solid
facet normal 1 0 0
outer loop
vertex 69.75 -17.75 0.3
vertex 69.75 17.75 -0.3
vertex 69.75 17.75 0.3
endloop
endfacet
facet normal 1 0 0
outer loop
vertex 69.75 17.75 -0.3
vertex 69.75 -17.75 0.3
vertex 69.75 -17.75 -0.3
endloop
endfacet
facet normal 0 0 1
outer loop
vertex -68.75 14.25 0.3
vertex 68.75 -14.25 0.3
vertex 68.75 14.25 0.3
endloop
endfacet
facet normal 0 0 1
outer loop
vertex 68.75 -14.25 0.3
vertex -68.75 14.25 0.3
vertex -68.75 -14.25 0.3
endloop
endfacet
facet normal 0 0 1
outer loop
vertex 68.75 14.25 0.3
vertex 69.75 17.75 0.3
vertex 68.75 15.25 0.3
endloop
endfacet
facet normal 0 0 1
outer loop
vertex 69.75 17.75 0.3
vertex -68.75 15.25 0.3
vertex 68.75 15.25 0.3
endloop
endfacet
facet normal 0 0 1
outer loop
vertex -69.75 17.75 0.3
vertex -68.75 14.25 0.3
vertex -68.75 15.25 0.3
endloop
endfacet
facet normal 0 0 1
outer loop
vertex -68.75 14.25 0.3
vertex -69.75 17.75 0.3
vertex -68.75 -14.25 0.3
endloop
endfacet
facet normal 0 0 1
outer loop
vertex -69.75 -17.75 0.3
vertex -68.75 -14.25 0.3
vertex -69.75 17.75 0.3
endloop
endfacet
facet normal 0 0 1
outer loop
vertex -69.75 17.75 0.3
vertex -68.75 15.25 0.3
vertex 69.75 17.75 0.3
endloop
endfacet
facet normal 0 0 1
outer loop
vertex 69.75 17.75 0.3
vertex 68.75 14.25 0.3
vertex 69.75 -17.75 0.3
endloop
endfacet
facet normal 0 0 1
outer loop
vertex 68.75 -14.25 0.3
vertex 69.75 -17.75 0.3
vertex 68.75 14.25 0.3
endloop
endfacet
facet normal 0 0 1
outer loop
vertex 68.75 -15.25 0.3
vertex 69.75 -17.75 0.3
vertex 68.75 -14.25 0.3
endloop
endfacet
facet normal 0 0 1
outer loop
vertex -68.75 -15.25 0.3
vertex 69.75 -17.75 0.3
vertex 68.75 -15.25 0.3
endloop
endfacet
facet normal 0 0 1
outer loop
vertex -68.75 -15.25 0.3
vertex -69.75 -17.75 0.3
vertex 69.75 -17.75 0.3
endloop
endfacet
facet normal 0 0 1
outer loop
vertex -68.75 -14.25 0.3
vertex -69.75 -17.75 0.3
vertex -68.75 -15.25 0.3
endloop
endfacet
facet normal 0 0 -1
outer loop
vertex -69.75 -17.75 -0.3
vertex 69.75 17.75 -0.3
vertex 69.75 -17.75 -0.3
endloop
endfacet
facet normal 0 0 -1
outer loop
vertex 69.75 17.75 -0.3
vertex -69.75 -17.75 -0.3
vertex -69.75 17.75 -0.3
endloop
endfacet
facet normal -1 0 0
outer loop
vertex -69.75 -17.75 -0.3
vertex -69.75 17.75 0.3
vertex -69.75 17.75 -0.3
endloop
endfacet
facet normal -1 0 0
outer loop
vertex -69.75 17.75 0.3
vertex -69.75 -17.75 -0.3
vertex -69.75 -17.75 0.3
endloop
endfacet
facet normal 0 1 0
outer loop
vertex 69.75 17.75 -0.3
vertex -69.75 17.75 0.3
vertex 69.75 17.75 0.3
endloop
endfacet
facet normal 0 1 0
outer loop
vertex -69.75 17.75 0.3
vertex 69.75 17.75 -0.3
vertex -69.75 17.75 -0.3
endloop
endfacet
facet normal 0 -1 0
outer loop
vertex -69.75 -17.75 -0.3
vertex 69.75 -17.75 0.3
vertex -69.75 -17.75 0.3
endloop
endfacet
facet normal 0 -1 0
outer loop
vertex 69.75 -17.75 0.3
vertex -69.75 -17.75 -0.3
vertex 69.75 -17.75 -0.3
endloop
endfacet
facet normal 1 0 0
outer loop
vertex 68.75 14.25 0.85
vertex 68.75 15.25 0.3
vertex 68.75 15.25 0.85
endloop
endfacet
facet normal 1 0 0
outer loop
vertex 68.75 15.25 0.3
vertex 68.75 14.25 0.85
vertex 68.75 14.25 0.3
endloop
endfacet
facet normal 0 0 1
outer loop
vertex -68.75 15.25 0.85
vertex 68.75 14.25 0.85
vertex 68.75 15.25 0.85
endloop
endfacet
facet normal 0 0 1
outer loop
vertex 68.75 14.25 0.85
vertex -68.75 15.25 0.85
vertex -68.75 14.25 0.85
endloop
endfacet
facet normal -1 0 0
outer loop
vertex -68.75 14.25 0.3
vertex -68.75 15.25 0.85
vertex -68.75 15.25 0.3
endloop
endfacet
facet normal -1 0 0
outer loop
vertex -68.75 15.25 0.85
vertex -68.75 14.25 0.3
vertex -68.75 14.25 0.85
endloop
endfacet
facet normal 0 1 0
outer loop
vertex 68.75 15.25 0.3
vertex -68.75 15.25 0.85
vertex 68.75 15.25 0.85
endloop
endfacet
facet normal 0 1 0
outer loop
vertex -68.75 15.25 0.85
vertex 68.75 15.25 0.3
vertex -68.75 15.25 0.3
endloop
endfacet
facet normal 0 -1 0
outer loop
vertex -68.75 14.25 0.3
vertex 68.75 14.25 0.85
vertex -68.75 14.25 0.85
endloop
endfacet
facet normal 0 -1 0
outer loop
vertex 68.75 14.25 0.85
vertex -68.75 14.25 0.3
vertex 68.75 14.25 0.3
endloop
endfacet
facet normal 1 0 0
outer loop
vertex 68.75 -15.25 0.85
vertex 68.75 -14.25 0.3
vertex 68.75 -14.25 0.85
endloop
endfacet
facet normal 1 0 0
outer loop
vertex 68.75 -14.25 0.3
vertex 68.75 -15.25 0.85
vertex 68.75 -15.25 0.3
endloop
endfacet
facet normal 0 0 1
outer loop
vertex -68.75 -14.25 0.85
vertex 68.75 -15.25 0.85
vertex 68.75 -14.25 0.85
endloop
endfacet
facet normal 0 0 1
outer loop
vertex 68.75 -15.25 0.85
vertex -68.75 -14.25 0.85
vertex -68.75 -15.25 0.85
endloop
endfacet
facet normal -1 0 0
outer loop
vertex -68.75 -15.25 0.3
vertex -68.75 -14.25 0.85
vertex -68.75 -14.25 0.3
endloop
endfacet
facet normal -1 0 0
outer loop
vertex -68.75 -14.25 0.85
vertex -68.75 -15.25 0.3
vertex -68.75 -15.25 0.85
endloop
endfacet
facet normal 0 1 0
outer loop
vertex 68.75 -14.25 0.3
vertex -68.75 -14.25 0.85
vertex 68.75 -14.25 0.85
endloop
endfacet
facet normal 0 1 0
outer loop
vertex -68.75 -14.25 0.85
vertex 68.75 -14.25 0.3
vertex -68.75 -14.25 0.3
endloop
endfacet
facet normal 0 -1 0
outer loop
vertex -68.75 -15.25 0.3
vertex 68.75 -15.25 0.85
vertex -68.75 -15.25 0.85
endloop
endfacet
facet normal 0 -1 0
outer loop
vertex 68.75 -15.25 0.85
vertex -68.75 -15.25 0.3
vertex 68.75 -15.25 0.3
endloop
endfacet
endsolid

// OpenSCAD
// file: fb_globals.scad
/// @file fb_globals.scad
///
/// @brief project footbridge globals
///
/// @author © Dave Harris 2022
///
/// Included in all project files.


$fa = 1;   // Fragment angle
$fs = 0.4; // Fragment size resolution

// global constants
//------------------

H_canopy = 47;

H_bridge = 49.5; // platform<>bridge
W_bridge = 36;   // width of bridge
                 // > walkway
W_walk   = 34.5; // width
H_walk   = 36;   // height of walkway


Steps    = 27;   // number of steps
W_stairs = 32;   // width ~ 9'6" @ H0
L_tread  = 3.5;  // tread ~ 12" @ H0
L_stairs = L_tread * (Steps +1);
H_rise   = H_bridge / (Steps +1); 
  // rise is 1.7678, not H0 1.75 (6")

W_lift   = 34;

W_build  = W_stairs +2;
L_build  = L_stairs+W_bridge+W_lift +2;

W_pillar = 4;

L_spacing = L_build /2;

Spans = 6;

L_canopy = ((Spans -1) * L_spacing) + W_pillar;

echo("len",L_canopy);

H_door   = 28;
W_door   = 18;

H_window = 6;
W_window = 16;


W_plat45  = 93.9;
W_track34 = 87.9;
W_plat23  = 93.8;
W_track12 = 87.9;

W_plat23edge =
   ( W_plat23 - W_stairs +2 ) /2 ;
W_plat45edge =
   ( W_plat45 - W_stairs +2 ) /2 ;
   
L_span34 = W_track34 + W_plat45edge + W_plat23edge;

L_span12 = 136.5;

W_grider = 2.2;

W_LEDstrip = 7.5;



// eof
// main file
/// @file fb_span12roof.scad
///
/// @brief footbridge span 1 & 2 roof
///
/// @author © Dave Harris 2022
///

include <fb_globals.scad>;


spanFloor( L_span12 + 1, W_walk );



module spanFloor(
          length
        , width
        )
{
    cube(  // floor plate
      [ length +2 
      , width +1 
      , 0.6 ], center = true
    );

  translate(
    [ -length/2, (width /2) -3, -0.25 ]
  ) cube(
      [ length, 1, 1.1 ]
    );

//  translate(
//    [ -length/2, -0.5, -0.3 ]
//  ) cube(
//      [ length, 1, 0.8 ]
//    );


  translate(
    [ -length/2, -(width /2) +2 , -0.25 ]
  ) cube(
      [ length, 1, 1.1 ]
    );
}

// eof
